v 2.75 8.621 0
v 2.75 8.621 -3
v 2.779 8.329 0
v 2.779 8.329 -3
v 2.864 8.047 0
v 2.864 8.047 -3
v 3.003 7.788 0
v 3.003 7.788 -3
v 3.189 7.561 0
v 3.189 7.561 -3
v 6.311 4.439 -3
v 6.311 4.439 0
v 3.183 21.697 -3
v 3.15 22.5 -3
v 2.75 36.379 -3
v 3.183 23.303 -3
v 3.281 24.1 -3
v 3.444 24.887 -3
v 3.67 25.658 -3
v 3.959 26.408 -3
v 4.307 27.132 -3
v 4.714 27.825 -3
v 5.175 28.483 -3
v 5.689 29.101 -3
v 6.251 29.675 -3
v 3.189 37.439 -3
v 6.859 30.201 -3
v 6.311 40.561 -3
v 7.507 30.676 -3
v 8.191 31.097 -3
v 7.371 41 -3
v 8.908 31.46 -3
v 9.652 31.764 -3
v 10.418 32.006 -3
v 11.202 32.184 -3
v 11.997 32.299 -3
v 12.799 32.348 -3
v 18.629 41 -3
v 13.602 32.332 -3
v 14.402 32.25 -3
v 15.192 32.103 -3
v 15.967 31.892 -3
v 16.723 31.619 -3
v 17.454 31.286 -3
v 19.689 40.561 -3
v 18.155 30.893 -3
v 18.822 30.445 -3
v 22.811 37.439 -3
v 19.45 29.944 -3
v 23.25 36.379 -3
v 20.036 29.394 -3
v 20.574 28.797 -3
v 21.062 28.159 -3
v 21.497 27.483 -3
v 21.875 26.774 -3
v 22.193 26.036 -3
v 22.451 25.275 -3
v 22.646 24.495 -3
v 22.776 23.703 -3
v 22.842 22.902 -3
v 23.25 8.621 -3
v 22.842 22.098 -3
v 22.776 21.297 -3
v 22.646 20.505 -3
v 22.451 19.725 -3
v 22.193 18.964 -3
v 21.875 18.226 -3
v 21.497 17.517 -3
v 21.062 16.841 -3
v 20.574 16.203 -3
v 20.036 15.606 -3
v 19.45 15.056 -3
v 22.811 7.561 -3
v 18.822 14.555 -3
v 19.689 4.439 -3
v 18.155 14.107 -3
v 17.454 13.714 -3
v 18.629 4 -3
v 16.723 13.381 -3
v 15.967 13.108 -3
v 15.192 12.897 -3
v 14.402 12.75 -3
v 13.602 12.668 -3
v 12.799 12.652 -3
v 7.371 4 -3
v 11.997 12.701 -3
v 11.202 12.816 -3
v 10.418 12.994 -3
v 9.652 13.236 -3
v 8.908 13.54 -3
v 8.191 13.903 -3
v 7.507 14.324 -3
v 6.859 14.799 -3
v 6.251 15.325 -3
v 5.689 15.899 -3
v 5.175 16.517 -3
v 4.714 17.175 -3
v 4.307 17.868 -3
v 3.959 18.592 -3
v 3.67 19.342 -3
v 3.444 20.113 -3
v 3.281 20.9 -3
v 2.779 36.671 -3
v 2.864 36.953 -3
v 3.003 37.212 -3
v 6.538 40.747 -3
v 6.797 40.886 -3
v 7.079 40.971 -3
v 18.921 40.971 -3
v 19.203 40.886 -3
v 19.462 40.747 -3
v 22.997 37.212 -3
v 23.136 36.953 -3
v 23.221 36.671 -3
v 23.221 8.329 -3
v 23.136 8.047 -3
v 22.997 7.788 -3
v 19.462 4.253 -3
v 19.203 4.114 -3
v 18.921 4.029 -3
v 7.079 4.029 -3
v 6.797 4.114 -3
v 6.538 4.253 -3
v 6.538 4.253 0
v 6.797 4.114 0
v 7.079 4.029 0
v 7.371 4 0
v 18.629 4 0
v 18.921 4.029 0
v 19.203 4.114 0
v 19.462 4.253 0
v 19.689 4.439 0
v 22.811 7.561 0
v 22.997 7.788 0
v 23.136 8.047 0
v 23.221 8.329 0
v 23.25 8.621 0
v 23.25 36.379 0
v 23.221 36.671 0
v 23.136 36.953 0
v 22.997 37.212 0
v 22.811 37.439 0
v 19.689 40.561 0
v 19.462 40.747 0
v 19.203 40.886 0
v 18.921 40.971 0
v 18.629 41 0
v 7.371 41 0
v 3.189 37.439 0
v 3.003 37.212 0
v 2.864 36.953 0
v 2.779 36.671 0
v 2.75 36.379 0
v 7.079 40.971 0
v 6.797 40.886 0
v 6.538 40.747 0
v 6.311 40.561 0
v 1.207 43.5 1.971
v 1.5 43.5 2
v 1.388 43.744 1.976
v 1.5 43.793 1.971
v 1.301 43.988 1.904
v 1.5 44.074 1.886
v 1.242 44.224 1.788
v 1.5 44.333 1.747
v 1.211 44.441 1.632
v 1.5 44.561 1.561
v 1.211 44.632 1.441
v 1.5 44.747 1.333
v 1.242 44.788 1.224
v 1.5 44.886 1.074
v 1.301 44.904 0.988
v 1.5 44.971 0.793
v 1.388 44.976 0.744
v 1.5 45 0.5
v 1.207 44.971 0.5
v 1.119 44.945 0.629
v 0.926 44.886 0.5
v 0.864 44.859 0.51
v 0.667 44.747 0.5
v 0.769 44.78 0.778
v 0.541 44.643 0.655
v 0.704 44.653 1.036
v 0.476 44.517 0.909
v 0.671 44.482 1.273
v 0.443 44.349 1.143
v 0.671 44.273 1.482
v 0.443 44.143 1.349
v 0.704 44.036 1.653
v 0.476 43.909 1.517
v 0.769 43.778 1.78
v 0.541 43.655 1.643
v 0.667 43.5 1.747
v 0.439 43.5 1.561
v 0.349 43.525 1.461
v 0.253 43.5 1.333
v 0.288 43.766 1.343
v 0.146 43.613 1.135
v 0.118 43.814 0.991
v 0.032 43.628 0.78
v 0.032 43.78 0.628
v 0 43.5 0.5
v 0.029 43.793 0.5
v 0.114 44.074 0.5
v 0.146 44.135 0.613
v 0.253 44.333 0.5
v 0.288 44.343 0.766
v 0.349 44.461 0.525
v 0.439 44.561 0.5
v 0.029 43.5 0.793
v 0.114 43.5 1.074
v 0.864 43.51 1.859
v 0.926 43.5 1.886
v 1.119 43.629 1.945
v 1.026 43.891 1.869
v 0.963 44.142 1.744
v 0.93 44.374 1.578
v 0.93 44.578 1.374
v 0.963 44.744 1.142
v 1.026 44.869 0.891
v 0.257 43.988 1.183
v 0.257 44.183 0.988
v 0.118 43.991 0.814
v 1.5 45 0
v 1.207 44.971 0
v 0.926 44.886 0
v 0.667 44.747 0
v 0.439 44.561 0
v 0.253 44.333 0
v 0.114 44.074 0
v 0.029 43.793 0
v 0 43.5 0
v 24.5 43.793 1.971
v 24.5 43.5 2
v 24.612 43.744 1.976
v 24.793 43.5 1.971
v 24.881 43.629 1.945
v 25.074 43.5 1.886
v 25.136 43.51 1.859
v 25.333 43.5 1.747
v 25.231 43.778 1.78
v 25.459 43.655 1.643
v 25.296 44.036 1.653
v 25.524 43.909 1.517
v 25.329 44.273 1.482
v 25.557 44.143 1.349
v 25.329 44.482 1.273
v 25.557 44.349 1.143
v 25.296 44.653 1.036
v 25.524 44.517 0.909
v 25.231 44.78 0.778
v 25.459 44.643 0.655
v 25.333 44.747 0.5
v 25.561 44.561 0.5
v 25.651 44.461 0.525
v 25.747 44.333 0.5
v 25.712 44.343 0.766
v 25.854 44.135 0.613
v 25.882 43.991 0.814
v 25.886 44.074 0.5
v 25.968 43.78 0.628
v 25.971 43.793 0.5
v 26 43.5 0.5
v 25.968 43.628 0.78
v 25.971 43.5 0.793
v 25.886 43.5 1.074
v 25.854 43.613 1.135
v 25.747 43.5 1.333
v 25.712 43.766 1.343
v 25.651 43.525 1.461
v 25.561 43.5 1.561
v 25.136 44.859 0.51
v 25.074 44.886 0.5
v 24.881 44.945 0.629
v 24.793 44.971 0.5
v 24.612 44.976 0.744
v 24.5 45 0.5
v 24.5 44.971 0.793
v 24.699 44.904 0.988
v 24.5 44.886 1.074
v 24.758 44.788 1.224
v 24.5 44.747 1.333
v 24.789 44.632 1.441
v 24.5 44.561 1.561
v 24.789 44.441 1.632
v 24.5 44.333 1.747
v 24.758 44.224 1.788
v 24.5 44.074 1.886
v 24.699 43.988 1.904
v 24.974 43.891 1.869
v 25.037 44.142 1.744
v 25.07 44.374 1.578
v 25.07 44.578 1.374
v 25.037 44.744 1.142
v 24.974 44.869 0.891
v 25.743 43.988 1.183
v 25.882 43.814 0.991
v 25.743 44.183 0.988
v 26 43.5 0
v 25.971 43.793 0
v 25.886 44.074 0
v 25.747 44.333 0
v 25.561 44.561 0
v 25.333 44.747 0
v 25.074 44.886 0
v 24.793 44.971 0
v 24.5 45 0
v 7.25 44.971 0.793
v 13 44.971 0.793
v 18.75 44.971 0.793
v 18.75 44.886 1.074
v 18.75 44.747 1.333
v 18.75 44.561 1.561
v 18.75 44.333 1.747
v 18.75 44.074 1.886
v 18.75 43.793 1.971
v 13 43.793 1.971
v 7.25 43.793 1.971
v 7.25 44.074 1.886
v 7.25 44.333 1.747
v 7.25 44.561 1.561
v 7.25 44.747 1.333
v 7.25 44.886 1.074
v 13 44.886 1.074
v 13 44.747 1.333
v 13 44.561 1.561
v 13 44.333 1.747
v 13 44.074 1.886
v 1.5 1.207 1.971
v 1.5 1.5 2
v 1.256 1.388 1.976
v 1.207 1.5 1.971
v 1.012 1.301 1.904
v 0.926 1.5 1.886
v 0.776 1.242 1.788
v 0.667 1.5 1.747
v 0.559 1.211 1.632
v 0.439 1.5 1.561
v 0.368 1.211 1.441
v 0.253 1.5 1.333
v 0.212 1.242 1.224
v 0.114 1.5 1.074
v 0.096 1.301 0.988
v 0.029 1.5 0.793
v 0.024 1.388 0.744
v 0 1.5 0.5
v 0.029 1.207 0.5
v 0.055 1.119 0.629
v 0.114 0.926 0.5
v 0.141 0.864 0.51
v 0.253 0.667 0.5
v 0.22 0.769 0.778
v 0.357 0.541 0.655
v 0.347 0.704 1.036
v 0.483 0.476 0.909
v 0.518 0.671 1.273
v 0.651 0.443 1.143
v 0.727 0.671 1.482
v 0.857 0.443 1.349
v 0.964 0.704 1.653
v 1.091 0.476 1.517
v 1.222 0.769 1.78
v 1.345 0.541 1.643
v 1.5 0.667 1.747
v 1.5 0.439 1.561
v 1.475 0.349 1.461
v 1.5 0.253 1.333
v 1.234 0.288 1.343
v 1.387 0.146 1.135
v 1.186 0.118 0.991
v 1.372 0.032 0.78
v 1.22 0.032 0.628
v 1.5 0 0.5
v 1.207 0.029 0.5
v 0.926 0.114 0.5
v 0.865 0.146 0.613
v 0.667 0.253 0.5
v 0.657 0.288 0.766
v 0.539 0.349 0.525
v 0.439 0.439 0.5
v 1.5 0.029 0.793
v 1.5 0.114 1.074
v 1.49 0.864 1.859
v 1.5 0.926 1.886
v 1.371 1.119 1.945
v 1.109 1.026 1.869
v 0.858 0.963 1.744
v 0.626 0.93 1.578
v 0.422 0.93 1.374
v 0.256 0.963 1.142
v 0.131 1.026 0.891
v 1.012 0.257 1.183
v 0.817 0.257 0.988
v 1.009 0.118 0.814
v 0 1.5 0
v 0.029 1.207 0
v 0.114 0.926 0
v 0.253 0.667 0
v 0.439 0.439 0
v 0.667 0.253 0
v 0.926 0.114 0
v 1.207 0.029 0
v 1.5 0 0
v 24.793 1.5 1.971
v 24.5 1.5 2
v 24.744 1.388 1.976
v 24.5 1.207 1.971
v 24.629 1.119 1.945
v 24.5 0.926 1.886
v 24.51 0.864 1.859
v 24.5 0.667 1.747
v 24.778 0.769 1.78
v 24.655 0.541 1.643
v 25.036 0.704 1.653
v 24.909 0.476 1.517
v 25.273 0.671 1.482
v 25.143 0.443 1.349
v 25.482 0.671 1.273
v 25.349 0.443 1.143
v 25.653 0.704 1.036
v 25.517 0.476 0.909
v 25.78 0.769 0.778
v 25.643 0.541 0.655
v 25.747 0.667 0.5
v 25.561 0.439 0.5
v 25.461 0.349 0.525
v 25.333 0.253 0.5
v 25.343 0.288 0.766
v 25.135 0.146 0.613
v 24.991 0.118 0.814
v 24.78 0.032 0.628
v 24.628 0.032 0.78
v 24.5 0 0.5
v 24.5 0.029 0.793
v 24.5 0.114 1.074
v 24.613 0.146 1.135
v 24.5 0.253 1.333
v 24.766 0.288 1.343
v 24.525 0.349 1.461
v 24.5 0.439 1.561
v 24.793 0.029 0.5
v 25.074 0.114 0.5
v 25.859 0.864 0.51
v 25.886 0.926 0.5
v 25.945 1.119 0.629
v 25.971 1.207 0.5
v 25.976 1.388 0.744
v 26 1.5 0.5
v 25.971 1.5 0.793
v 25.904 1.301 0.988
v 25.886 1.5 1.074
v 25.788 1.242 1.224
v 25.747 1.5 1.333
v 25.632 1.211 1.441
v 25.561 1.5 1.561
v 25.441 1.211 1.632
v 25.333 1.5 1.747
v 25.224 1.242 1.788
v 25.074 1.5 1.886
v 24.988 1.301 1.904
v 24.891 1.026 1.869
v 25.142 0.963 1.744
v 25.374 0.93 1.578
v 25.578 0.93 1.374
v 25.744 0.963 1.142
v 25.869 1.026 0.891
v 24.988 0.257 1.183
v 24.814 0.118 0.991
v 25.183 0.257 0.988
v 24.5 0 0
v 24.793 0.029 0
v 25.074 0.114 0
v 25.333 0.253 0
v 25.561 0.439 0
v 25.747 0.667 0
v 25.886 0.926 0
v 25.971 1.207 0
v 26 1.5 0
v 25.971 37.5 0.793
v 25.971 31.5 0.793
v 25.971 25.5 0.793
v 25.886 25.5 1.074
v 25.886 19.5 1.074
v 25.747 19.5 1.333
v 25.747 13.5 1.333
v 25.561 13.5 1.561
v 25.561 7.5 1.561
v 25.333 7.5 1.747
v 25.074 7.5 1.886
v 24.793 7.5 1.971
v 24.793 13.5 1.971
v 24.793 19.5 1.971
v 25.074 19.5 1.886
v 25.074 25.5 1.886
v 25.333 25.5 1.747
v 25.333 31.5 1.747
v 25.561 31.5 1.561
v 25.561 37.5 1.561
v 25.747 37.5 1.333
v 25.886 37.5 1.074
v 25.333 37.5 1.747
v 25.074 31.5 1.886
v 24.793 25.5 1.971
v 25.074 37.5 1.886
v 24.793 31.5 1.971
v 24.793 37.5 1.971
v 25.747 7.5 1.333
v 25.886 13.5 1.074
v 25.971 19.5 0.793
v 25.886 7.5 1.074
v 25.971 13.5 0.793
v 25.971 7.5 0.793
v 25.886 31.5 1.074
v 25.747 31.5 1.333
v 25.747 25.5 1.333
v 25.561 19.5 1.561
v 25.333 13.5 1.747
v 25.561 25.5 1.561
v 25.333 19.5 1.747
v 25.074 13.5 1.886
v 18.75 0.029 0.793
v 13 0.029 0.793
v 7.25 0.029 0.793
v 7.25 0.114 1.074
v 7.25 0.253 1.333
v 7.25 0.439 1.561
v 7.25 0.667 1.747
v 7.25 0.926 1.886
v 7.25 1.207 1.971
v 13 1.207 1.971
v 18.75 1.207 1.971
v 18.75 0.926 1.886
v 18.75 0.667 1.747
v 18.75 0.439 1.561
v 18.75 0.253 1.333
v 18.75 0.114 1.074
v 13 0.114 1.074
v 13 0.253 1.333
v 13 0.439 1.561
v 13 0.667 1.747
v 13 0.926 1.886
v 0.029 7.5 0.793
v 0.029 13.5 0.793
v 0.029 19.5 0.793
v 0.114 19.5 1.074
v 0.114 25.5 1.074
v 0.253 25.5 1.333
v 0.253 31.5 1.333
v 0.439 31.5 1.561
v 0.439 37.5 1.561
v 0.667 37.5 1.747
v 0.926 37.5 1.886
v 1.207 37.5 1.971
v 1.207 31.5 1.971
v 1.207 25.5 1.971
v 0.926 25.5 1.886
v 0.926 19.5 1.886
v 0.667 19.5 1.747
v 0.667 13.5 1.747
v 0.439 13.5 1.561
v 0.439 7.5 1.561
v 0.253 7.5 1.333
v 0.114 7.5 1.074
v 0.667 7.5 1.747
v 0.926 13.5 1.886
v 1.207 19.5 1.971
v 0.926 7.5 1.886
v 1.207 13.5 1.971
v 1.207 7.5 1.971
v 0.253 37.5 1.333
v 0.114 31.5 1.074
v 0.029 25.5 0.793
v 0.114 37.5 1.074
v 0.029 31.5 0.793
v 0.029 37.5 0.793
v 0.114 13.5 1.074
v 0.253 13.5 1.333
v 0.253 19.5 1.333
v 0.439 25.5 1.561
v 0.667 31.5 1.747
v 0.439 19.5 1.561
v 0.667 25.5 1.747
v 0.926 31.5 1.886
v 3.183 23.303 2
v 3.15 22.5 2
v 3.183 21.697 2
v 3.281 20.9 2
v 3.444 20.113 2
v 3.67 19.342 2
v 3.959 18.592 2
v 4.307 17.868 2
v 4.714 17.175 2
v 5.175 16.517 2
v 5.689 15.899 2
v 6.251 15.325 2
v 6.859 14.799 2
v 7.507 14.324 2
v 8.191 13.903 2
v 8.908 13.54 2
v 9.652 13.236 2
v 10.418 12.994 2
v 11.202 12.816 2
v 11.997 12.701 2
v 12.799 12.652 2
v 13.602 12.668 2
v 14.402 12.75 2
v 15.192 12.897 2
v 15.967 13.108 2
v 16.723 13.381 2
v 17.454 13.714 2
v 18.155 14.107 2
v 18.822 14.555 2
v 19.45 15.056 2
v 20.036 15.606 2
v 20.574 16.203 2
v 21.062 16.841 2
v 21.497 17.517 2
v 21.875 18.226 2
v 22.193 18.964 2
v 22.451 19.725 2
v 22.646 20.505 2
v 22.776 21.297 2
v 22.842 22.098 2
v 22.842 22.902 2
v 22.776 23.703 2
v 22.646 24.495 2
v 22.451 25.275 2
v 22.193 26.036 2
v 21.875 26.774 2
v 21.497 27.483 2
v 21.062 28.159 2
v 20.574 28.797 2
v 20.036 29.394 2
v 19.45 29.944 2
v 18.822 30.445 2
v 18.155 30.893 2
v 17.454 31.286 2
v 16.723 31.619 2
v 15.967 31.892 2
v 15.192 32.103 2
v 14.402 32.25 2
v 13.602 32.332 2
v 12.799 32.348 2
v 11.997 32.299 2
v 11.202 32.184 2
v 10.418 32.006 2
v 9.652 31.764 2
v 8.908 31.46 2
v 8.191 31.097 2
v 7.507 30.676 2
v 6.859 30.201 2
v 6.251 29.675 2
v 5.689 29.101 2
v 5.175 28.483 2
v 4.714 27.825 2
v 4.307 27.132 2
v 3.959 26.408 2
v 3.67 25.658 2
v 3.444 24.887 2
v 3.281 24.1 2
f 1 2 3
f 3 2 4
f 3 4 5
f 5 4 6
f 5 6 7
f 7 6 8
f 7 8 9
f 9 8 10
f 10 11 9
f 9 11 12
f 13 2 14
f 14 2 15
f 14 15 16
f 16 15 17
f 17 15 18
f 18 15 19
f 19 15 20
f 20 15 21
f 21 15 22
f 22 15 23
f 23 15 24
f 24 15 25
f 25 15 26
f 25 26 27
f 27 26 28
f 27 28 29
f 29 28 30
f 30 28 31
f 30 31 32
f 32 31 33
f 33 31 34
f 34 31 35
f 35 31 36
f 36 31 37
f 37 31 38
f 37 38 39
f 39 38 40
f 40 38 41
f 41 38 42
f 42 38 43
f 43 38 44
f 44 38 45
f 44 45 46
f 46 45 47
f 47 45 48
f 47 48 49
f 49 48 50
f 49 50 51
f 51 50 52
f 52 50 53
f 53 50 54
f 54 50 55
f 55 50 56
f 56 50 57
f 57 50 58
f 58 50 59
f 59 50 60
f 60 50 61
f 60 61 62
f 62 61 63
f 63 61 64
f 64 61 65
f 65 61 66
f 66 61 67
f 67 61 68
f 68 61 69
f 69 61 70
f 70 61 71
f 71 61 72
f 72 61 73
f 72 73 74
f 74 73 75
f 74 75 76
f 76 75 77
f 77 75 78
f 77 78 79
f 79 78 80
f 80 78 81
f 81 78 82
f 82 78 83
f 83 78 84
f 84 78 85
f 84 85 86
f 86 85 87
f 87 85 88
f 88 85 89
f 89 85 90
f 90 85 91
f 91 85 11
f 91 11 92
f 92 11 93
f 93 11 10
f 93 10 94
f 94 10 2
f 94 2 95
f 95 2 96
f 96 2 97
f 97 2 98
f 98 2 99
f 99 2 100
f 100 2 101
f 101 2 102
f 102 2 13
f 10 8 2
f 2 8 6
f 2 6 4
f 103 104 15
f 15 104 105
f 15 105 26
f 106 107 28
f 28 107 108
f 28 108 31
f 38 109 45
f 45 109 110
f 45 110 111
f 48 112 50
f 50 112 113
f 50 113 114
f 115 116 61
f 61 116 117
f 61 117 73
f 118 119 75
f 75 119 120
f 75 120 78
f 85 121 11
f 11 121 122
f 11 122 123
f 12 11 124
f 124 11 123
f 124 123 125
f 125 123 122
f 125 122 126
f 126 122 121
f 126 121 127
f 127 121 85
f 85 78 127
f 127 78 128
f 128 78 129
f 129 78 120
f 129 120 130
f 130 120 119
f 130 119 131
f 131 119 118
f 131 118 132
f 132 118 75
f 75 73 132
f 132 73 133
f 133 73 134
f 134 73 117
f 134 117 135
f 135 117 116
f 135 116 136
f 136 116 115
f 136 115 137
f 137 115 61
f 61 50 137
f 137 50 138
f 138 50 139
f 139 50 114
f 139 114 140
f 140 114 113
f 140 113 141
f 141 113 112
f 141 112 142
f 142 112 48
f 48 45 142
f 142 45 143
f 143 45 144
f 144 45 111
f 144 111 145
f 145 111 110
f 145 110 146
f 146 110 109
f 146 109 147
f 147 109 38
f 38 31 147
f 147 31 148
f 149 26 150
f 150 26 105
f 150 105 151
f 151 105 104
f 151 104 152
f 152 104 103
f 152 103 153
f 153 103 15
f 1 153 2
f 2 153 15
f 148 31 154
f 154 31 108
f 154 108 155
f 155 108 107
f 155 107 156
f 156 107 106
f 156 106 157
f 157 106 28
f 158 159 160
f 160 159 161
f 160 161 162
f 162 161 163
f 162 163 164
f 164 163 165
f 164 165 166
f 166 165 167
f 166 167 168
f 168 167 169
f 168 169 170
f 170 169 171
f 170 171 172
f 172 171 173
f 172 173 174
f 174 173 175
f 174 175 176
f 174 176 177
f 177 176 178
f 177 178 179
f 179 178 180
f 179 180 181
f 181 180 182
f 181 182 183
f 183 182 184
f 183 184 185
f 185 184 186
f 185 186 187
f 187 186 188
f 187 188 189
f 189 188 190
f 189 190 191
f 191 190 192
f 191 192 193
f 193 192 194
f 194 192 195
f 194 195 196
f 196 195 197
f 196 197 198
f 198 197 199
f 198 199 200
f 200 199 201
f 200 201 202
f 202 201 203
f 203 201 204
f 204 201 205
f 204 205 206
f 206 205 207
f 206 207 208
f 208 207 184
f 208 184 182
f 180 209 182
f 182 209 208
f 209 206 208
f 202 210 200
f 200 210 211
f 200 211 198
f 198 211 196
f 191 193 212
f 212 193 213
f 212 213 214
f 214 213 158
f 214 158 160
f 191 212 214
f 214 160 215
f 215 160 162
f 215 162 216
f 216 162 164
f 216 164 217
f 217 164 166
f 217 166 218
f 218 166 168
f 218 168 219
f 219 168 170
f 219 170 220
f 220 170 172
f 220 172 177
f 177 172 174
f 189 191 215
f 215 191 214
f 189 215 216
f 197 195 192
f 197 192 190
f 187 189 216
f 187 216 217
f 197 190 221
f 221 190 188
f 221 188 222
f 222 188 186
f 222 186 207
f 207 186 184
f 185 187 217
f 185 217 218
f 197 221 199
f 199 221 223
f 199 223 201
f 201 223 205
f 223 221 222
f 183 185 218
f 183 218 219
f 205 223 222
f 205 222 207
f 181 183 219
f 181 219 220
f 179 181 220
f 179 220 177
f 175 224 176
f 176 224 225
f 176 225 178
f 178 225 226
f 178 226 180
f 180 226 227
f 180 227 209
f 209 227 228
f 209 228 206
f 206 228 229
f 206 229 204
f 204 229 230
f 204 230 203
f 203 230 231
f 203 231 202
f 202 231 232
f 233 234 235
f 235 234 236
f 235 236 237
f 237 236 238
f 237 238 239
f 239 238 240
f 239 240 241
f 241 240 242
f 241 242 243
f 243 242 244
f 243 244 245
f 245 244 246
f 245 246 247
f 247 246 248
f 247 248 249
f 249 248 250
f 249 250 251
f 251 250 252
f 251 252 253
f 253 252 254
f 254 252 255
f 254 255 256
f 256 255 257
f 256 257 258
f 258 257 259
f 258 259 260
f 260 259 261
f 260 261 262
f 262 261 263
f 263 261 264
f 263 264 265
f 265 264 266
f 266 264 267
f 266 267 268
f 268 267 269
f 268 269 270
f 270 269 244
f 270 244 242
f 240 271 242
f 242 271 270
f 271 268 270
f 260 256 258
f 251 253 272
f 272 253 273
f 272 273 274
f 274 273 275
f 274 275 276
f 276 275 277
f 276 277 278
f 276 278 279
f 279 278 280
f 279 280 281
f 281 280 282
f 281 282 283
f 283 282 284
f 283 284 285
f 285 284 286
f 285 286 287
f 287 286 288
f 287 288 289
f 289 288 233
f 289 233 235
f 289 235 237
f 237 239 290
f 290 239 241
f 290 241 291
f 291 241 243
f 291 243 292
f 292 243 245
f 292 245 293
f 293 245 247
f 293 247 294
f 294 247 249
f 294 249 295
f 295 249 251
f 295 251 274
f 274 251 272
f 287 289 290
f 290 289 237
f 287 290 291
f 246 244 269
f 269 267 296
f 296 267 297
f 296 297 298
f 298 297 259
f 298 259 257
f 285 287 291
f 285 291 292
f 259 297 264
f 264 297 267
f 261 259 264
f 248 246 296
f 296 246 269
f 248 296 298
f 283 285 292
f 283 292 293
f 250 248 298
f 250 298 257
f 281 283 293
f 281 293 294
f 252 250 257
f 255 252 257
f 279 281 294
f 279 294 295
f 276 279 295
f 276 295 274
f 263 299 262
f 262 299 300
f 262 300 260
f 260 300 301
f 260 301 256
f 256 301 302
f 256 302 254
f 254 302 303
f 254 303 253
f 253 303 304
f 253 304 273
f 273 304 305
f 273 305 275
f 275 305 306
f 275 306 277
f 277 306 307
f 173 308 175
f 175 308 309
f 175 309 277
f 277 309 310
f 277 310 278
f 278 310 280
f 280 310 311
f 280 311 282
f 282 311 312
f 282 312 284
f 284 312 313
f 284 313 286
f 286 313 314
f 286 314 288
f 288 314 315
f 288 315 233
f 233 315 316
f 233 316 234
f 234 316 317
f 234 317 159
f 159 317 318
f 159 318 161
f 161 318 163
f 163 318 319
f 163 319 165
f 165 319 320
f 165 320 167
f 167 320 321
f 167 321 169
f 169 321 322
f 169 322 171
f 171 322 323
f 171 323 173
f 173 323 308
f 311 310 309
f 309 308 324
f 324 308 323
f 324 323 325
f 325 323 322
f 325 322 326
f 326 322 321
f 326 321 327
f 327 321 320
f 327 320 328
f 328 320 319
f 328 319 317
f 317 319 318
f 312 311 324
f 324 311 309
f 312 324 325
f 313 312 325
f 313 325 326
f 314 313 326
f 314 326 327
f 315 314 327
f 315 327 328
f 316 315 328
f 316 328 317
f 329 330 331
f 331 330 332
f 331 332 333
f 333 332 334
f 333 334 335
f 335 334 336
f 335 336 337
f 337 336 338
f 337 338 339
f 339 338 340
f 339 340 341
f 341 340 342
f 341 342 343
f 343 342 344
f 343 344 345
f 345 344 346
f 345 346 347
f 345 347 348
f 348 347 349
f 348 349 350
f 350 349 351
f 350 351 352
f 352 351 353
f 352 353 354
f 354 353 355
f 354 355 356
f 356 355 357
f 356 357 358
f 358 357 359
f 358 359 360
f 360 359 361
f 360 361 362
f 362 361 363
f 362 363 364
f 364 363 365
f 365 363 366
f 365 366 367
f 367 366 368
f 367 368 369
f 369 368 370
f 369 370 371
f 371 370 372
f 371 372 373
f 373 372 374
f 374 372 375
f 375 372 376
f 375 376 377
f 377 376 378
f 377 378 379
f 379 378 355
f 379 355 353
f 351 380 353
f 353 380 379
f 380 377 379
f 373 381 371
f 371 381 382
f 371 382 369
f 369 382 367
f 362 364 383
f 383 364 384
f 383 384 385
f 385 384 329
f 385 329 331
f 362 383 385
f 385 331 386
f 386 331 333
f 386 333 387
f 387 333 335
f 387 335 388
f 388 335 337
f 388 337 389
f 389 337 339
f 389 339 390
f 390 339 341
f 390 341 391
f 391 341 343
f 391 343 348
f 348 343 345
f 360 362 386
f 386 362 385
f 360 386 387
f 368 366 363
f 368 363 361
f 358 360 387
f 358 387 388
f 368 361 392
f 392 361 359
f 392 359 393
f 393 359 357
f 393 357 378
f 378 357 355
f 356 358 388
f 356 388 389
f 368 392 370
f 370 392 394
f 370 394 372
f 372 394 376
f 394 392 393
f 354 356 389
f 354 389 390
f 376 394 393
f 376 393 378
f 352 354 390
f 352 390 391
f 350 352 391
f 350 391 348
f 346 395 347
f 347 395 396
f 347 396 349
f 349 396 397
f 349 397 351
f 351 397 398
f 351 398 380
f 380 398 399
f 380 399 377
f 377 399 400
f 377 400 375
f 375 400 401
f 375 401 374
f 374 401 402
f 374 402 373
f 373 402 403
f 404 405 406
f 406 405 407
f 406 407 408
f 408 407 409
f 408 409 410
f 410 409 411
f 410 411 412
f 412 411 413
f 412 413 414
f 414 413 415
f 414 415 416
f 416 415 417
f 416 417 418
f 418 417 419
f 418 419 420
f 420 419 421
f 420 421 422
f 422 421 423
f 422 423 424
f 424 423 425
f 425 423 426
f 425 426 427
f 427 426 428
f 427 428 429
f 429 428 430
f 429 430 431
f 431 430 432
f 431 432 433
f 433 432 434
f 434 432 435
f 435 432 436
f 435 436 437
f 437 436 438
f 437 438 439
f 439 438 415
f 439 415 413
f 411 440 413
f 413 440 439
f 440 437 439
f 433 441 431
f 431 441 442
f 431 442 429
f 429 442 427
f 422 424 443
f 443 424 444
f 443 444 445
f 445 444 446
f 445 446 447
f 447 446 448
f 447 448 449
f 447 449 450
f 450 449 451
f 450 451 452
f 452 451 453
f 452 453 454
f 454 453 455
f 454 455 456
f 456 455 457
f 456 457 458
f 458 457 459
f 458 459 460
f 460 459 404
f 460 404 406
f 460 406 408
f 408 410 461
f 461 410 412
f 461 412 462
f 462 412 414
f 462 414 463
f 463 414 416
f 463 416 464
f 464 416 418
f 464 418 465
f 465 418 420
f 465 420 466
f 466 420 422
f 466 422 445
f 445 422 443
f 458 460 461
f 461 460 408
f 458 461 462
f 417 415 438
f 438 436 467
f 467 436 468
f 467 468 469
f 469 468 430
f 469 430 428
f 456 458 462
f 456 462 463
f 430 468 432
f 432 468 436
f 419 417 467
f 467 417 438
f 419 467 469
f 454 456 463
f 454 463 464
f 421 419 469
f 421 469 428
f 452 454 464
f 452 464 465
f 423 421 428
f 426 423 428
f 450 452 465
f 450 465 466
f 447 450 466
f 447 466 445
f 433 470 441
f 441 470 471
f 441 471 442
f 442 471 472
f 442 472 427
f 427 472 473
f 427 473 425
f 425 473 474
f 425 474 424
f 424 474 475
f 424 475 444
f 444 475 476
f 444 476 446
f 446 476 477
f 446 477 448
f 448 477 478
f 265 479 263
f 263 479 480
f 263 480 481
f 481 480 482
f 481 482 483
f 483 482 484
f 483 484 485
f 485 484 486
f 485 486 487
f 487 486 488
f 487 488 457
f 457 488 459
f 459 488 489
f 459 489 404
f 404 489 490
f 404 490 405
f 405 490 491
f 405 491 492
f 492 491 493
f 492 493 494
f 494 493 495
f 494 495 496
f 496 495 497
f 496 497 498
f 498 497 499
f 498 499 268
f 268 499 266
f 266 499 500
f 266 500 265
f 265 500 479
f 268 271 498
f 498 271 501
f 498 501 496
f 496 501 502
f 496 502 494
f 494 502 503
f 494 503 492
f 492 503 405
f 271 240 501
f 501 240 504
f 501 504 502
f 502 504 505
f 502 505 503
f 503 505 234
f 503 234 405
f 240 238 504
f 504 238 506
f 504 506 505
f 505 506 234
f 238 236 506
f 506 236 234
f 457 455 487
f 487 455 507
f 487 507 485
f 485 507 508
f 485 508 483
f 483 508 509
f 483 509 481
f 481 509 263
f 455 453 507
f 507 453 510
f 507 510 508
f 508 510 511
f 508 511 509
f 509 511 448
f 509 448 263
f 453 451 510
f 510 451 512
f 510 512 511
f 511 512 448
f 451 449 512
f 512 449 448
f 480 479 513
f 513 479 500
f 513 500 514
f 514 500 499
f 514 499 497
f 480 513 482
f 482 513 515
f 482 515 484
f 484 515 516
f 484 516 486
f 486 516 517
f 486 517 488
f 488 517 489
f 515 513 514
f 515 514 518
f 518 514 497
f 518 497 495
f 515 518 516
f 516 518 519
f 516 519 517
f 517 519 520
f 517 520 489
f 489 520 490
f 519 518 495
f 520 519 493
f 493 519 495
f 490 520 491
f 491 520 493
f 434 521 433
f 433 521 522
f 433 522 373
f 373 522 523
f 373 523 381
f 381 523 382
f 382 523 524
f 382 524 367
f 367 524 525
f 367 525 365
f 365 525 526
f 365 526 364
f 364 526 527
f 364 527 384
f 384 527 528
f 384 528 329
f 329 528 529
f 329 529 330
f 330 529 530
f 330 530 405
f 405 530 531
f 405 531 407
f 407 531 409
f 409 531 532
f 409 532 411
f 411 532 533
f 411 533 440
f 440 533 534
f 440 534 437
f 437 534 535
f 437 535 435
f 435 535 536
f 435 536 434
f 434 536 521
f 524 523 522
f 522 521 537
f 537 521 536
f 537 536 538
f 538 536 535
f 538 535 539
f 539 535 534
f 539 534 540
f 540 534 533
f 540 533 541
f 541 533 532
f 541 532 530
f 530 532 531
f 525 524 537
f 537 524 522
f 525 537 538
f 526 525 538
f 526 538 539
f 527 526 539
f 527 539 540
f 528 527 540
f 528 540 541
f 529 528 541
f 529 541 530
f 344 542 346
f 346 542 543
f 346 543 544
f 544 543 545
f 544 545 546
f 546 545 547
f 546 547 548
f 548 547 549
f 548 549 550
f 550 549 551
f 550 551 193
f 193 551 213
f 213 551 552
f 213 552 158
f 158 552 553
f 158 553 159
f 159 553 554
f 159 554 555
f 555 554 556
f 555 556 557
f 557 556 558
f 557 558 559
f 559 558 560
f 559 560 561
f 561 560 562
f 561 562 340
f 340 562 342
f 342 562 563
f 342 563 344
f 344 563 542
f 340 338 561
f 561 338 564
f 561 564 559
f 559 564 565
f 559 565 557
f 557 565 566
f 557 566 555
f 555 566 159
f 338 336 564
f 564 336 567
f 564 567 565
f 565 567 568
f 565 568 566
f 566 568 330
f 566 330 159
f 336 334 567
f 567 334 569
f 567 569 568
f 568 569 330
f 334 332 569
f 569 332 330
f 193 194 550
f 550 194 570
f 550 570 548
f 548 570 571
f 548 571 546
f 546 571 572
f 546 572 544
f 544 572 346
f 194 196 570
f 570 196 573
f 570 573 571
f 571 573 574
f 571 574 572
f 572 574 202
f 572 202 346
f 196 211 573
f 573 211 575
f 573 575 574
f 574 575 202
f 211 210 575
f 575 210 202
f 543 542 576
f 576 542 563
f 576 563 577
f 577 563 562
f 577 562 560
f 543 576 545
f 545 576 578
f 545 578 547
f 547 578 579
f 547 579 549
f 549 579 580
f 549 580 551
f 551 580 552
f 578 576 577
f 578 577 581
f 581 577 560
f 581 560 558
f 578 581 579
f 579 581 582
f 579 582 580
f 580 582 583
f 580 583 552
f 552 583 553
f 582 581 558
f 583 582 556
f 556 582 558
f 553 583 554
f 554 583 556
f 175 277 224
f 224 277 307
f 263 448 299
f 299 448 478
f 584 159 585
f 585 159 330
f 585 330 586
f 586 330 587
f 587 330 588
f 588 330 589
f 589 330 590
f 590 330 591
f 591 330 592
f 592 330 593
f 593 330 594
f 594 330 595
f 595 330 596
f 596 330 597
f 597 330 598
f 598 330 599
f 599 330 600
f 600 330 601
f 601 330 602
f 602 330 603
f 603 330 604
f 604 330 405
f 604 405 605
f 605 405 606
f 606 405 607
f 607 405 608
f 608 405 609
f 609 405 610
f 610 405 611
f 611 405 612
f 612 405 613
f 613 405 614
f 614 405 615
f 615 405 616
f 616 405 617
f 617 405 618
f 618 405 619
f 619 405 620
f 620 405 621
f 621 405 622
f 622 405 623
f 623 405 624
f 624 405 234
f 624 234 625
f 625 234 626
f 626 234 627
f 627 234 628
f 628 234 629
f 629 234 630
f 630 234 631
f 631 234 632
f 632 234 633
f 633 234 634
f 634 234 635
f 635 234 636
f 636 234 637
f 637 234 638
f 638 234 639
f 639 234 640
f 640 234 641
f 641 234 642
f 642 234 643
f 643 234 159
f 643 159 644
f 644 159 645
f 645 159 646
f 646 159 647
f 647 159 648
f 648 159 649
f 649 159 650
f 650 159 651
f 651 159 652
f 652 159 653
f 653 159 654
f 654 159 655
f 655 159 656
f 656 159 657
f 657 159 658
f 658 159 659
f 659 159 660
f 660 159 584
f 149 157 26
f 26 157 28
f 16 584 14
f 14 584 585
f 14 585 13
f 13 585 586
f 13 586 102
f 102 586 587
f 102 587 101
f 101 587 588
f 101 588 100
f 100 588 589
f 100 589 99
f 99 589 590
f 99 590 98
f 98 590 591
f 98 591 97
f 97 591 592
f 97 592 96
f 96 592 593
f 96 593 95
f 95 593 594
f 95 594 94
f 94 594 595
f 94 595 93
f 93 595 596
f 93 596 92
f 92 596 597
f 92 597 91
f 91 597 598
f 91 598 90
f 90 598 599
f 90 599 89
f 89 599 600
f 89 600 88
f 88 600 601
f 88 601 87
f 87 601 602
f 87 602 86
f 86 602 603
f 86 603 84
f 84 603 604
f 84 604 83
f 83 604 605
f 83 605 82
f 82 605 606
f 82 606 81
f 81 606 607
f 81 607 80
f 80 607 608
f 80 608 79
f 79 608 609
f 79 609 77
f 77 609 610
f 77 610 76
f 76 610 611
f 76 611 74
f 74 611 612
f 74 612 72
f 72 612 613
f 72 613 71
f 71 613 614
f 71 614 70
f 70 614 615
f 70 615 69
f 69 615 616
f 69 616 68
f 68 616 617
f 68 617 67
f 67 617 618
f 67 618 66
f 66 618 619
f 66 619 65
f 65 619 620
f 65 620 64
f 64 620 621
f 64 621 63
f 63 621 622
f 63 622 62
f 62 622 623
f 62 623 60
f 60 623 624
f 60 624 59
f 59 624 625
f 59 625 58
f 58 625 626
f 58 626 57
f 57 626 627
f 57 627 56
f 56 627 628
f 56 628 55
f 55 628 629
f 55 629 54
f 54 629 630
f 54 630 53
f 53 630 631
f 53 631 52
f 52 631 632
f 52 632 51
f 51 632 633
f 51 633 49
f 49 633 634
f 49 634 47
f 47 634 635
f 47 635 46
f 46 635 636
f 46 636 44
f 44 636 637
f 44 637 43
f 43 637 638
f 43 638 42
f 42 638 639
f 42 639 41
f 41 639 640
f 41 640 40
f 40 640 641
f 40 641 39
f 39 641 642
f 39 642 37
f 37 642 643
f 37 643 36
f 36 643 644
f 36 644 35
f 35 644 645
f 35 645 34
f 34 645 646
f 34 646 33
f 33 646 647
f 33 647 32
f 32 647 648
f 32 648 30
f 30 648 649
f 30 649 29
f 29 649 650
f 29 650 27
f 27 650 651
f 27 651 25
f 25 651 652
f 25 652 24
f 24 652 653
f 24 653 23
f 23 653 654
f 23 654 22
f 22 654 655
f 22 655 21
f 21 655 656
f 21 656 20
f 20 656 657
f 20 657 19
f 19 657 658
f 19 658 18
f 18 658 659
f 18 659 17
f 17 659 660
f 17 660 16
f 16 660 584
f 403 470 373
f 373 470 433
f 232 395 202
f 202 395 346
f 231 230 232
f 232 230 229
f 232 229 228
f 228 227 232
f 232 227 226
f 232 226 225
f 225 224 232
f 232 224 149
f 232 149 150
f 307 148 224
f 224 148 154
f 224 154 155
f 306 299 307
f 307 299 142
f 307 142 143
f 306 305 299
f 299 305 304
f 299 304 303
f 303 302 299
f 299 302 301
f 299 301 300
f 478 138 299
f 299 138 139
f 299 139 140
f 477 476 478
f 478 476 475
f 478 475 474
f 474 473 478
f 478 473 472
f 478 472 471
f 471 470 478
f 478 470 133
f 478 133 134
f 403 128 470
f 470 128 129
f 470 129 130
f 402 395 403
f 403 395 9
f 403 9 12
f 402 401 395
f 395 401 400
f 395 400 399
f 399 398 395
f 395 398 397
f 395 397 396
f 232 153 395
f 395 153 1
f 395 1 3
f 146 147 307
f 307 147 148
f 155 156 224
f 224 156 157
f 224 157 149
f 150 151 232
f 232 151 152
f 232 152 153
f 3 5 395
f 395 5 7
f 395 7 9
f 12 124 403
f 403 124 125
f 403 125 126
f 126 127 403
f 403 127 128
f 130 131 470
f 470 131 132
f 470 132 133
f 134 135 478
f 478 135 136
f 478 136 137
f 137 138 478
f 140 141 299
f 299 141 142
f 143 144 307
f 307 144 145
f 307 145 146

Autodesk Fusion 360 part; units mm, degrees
sketch "Sketch1" plane through (0, 0, 0) normal (0, 0, 1) x (1, 0, 0)
  line L0 (0, 0) -> (26, 0)
  line L1 (26, 0) -> (26, 45)
  line L2 (26, 45) -> (0, 45)
  line L3 (0, 45) -> (0, 0)
  line L4 (0, 45) -> (26, 0) construction
  circle A0 centre (13, 22.5) radius 9.85
  line L5 (6.75, 4) -> (19.25, 4)
  line L6 (23.25, 8) -> (23.25, 37)
  line L7 (19.25, 41) -> (6.75, 41)
  line L8 (2.75, 37) -> (2.75, 8)
  line L9 (6.75, 41) -> (2.75, 37)
  line L10 (23.25, 37) -> (19.25, 41)
  line L11 (6.75, 4) -> (2.75, 8)
  line L12 (23.25, 8) -> (19.25, 4)
  point P0 (2.75, 4)
  point P1 (23.25, 4)
  point P2 (23.25, 41)
  point P3 (2.75, 41)
  dimension "d1" = 19.7
  dimension "d2" = 26
  dimension "d3" = 45
  dimension "d4" = 20.5
  dimension "d5" = 2.75
  dimension "d6" = 4
  dimension "d7" = 37
  dimension "d8" = 4
  dimension "d9" = 4
  dimension "d10" = 4
  dimension "d11" = 4
  dimension "d12" = 4
  dimension "d13" = 4
  dimension "d14" = 4
  dimension "d15" = 4
extrude "Extrude1" add sketch "Sketch1" along normal blind 2 contours L0 L1 L2 L3 | L5 L6 L7 L8 L9 L10 L11 L12
extrude "Extrude2" add sketch "Sketch1" against normal blind 3 contours L5 L6 L7 L8 L9 L10 L11 L12
fillet "Fillet1" radius 1.5 16 edges at (26, 0, 1) (0, 0, 1) (0, 45, 1) (26, 45, 1) (6.75, 41, -1.5) (2.75, 37, -1.5) (19.25, 41, -1.5) (23.25, 37, -1.5) (23.25, 8, -1.5) (19.25, 4, -1.5) (6.75, 4, -1.5) (2.75, 8, -1.5) (13, 45, 2) (0, 22.5, 2) (13, 0, 2) (26, 22.5, 2)
equation "d5 = ( d2 - d4 ) / 2"
equation "d6 = ( d3 - d7 ) / 2"
equation "d9 = d8"
equation "d10 = d8"
equation "d11 = d10"
equation "d12 = d8"
equation "d13 = d12"
equation "d14 = d8"
equation "d15 = d14"
